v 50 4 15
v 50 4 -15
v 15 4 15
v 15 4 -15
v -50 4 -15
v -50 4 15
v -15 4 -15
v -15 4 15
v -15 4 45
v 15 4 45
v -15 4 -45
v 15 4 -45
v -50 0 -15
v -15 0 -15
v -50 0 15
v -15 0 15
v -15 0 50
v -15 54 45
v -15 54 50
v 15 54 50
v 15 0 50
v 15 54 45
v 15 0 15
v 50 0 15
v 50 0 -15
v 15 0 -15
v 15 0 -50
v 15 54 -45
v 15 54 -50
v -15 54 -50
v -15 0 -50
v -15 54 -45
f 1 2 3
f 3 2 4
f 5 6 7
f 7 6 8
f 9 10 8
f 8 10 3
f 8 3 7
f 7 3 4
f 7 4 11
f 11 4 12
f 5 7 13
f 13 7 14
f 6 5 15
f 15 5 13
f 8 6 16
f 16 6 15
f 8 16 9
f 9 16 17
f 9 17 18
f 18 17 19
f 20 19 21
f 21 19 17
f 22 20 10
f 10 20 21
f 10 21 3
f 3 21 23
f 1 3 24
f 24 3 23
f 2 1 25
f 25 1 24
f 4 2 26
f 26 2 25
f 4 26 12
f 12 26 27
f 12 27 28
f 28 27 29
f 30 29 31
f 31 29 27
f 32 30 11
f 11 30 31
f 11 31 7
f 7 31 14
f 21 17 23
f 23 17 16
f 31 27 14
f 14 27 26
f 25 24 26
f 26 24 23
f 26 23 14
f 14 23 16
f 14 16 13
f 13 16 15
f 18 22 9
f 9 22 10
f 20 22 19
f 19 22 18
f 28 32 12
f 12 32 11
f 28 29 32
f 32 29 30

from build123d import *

# Parameters (mm, degrees)
BOSS_EXTRUDE3_DEPTH = 4
SKETCH4_W           = 30
SKETCH4_H           = 5
BOSS_EXTRUDE4_DEPTH = 50


with BuildPart() as part:
    # Sketch3 → Boss-Extrude3 (new body)
    with BuildSketch(Plane(origin=(0, 0, 0), x_dir=(1, 0, 0), z_dir=(0, 1, 0))):
        Polygon((-15, -15), (-15, -50), (15, -50), (15, -15), (50, -15), (50, 15), (15, 15), (15, 50), (-15, 50), (-15, 15), (-50, 15), (-50, -15), align=None)
    extrude(amount=BOSS_EXTRUDE3_DEPTH)

    # Sketch4 → Boss-Extrude4 (add)
    with BuildSketch(Plane(origin=(0, 4, 0), x_dir=(1, 0, 0), z_dir=(0, 1, 0))):
        with Locations((0, -47.5)):
            Rectangle(SKETCH4_W, SKETCH4_H)
        with Locations((0, 47.5)):
            Rectangle(SKETCH4_W, SKETCH4_H)
    extrude(amount=BOSS_EXTRUDE4_DEPTH)


solid = part.part
